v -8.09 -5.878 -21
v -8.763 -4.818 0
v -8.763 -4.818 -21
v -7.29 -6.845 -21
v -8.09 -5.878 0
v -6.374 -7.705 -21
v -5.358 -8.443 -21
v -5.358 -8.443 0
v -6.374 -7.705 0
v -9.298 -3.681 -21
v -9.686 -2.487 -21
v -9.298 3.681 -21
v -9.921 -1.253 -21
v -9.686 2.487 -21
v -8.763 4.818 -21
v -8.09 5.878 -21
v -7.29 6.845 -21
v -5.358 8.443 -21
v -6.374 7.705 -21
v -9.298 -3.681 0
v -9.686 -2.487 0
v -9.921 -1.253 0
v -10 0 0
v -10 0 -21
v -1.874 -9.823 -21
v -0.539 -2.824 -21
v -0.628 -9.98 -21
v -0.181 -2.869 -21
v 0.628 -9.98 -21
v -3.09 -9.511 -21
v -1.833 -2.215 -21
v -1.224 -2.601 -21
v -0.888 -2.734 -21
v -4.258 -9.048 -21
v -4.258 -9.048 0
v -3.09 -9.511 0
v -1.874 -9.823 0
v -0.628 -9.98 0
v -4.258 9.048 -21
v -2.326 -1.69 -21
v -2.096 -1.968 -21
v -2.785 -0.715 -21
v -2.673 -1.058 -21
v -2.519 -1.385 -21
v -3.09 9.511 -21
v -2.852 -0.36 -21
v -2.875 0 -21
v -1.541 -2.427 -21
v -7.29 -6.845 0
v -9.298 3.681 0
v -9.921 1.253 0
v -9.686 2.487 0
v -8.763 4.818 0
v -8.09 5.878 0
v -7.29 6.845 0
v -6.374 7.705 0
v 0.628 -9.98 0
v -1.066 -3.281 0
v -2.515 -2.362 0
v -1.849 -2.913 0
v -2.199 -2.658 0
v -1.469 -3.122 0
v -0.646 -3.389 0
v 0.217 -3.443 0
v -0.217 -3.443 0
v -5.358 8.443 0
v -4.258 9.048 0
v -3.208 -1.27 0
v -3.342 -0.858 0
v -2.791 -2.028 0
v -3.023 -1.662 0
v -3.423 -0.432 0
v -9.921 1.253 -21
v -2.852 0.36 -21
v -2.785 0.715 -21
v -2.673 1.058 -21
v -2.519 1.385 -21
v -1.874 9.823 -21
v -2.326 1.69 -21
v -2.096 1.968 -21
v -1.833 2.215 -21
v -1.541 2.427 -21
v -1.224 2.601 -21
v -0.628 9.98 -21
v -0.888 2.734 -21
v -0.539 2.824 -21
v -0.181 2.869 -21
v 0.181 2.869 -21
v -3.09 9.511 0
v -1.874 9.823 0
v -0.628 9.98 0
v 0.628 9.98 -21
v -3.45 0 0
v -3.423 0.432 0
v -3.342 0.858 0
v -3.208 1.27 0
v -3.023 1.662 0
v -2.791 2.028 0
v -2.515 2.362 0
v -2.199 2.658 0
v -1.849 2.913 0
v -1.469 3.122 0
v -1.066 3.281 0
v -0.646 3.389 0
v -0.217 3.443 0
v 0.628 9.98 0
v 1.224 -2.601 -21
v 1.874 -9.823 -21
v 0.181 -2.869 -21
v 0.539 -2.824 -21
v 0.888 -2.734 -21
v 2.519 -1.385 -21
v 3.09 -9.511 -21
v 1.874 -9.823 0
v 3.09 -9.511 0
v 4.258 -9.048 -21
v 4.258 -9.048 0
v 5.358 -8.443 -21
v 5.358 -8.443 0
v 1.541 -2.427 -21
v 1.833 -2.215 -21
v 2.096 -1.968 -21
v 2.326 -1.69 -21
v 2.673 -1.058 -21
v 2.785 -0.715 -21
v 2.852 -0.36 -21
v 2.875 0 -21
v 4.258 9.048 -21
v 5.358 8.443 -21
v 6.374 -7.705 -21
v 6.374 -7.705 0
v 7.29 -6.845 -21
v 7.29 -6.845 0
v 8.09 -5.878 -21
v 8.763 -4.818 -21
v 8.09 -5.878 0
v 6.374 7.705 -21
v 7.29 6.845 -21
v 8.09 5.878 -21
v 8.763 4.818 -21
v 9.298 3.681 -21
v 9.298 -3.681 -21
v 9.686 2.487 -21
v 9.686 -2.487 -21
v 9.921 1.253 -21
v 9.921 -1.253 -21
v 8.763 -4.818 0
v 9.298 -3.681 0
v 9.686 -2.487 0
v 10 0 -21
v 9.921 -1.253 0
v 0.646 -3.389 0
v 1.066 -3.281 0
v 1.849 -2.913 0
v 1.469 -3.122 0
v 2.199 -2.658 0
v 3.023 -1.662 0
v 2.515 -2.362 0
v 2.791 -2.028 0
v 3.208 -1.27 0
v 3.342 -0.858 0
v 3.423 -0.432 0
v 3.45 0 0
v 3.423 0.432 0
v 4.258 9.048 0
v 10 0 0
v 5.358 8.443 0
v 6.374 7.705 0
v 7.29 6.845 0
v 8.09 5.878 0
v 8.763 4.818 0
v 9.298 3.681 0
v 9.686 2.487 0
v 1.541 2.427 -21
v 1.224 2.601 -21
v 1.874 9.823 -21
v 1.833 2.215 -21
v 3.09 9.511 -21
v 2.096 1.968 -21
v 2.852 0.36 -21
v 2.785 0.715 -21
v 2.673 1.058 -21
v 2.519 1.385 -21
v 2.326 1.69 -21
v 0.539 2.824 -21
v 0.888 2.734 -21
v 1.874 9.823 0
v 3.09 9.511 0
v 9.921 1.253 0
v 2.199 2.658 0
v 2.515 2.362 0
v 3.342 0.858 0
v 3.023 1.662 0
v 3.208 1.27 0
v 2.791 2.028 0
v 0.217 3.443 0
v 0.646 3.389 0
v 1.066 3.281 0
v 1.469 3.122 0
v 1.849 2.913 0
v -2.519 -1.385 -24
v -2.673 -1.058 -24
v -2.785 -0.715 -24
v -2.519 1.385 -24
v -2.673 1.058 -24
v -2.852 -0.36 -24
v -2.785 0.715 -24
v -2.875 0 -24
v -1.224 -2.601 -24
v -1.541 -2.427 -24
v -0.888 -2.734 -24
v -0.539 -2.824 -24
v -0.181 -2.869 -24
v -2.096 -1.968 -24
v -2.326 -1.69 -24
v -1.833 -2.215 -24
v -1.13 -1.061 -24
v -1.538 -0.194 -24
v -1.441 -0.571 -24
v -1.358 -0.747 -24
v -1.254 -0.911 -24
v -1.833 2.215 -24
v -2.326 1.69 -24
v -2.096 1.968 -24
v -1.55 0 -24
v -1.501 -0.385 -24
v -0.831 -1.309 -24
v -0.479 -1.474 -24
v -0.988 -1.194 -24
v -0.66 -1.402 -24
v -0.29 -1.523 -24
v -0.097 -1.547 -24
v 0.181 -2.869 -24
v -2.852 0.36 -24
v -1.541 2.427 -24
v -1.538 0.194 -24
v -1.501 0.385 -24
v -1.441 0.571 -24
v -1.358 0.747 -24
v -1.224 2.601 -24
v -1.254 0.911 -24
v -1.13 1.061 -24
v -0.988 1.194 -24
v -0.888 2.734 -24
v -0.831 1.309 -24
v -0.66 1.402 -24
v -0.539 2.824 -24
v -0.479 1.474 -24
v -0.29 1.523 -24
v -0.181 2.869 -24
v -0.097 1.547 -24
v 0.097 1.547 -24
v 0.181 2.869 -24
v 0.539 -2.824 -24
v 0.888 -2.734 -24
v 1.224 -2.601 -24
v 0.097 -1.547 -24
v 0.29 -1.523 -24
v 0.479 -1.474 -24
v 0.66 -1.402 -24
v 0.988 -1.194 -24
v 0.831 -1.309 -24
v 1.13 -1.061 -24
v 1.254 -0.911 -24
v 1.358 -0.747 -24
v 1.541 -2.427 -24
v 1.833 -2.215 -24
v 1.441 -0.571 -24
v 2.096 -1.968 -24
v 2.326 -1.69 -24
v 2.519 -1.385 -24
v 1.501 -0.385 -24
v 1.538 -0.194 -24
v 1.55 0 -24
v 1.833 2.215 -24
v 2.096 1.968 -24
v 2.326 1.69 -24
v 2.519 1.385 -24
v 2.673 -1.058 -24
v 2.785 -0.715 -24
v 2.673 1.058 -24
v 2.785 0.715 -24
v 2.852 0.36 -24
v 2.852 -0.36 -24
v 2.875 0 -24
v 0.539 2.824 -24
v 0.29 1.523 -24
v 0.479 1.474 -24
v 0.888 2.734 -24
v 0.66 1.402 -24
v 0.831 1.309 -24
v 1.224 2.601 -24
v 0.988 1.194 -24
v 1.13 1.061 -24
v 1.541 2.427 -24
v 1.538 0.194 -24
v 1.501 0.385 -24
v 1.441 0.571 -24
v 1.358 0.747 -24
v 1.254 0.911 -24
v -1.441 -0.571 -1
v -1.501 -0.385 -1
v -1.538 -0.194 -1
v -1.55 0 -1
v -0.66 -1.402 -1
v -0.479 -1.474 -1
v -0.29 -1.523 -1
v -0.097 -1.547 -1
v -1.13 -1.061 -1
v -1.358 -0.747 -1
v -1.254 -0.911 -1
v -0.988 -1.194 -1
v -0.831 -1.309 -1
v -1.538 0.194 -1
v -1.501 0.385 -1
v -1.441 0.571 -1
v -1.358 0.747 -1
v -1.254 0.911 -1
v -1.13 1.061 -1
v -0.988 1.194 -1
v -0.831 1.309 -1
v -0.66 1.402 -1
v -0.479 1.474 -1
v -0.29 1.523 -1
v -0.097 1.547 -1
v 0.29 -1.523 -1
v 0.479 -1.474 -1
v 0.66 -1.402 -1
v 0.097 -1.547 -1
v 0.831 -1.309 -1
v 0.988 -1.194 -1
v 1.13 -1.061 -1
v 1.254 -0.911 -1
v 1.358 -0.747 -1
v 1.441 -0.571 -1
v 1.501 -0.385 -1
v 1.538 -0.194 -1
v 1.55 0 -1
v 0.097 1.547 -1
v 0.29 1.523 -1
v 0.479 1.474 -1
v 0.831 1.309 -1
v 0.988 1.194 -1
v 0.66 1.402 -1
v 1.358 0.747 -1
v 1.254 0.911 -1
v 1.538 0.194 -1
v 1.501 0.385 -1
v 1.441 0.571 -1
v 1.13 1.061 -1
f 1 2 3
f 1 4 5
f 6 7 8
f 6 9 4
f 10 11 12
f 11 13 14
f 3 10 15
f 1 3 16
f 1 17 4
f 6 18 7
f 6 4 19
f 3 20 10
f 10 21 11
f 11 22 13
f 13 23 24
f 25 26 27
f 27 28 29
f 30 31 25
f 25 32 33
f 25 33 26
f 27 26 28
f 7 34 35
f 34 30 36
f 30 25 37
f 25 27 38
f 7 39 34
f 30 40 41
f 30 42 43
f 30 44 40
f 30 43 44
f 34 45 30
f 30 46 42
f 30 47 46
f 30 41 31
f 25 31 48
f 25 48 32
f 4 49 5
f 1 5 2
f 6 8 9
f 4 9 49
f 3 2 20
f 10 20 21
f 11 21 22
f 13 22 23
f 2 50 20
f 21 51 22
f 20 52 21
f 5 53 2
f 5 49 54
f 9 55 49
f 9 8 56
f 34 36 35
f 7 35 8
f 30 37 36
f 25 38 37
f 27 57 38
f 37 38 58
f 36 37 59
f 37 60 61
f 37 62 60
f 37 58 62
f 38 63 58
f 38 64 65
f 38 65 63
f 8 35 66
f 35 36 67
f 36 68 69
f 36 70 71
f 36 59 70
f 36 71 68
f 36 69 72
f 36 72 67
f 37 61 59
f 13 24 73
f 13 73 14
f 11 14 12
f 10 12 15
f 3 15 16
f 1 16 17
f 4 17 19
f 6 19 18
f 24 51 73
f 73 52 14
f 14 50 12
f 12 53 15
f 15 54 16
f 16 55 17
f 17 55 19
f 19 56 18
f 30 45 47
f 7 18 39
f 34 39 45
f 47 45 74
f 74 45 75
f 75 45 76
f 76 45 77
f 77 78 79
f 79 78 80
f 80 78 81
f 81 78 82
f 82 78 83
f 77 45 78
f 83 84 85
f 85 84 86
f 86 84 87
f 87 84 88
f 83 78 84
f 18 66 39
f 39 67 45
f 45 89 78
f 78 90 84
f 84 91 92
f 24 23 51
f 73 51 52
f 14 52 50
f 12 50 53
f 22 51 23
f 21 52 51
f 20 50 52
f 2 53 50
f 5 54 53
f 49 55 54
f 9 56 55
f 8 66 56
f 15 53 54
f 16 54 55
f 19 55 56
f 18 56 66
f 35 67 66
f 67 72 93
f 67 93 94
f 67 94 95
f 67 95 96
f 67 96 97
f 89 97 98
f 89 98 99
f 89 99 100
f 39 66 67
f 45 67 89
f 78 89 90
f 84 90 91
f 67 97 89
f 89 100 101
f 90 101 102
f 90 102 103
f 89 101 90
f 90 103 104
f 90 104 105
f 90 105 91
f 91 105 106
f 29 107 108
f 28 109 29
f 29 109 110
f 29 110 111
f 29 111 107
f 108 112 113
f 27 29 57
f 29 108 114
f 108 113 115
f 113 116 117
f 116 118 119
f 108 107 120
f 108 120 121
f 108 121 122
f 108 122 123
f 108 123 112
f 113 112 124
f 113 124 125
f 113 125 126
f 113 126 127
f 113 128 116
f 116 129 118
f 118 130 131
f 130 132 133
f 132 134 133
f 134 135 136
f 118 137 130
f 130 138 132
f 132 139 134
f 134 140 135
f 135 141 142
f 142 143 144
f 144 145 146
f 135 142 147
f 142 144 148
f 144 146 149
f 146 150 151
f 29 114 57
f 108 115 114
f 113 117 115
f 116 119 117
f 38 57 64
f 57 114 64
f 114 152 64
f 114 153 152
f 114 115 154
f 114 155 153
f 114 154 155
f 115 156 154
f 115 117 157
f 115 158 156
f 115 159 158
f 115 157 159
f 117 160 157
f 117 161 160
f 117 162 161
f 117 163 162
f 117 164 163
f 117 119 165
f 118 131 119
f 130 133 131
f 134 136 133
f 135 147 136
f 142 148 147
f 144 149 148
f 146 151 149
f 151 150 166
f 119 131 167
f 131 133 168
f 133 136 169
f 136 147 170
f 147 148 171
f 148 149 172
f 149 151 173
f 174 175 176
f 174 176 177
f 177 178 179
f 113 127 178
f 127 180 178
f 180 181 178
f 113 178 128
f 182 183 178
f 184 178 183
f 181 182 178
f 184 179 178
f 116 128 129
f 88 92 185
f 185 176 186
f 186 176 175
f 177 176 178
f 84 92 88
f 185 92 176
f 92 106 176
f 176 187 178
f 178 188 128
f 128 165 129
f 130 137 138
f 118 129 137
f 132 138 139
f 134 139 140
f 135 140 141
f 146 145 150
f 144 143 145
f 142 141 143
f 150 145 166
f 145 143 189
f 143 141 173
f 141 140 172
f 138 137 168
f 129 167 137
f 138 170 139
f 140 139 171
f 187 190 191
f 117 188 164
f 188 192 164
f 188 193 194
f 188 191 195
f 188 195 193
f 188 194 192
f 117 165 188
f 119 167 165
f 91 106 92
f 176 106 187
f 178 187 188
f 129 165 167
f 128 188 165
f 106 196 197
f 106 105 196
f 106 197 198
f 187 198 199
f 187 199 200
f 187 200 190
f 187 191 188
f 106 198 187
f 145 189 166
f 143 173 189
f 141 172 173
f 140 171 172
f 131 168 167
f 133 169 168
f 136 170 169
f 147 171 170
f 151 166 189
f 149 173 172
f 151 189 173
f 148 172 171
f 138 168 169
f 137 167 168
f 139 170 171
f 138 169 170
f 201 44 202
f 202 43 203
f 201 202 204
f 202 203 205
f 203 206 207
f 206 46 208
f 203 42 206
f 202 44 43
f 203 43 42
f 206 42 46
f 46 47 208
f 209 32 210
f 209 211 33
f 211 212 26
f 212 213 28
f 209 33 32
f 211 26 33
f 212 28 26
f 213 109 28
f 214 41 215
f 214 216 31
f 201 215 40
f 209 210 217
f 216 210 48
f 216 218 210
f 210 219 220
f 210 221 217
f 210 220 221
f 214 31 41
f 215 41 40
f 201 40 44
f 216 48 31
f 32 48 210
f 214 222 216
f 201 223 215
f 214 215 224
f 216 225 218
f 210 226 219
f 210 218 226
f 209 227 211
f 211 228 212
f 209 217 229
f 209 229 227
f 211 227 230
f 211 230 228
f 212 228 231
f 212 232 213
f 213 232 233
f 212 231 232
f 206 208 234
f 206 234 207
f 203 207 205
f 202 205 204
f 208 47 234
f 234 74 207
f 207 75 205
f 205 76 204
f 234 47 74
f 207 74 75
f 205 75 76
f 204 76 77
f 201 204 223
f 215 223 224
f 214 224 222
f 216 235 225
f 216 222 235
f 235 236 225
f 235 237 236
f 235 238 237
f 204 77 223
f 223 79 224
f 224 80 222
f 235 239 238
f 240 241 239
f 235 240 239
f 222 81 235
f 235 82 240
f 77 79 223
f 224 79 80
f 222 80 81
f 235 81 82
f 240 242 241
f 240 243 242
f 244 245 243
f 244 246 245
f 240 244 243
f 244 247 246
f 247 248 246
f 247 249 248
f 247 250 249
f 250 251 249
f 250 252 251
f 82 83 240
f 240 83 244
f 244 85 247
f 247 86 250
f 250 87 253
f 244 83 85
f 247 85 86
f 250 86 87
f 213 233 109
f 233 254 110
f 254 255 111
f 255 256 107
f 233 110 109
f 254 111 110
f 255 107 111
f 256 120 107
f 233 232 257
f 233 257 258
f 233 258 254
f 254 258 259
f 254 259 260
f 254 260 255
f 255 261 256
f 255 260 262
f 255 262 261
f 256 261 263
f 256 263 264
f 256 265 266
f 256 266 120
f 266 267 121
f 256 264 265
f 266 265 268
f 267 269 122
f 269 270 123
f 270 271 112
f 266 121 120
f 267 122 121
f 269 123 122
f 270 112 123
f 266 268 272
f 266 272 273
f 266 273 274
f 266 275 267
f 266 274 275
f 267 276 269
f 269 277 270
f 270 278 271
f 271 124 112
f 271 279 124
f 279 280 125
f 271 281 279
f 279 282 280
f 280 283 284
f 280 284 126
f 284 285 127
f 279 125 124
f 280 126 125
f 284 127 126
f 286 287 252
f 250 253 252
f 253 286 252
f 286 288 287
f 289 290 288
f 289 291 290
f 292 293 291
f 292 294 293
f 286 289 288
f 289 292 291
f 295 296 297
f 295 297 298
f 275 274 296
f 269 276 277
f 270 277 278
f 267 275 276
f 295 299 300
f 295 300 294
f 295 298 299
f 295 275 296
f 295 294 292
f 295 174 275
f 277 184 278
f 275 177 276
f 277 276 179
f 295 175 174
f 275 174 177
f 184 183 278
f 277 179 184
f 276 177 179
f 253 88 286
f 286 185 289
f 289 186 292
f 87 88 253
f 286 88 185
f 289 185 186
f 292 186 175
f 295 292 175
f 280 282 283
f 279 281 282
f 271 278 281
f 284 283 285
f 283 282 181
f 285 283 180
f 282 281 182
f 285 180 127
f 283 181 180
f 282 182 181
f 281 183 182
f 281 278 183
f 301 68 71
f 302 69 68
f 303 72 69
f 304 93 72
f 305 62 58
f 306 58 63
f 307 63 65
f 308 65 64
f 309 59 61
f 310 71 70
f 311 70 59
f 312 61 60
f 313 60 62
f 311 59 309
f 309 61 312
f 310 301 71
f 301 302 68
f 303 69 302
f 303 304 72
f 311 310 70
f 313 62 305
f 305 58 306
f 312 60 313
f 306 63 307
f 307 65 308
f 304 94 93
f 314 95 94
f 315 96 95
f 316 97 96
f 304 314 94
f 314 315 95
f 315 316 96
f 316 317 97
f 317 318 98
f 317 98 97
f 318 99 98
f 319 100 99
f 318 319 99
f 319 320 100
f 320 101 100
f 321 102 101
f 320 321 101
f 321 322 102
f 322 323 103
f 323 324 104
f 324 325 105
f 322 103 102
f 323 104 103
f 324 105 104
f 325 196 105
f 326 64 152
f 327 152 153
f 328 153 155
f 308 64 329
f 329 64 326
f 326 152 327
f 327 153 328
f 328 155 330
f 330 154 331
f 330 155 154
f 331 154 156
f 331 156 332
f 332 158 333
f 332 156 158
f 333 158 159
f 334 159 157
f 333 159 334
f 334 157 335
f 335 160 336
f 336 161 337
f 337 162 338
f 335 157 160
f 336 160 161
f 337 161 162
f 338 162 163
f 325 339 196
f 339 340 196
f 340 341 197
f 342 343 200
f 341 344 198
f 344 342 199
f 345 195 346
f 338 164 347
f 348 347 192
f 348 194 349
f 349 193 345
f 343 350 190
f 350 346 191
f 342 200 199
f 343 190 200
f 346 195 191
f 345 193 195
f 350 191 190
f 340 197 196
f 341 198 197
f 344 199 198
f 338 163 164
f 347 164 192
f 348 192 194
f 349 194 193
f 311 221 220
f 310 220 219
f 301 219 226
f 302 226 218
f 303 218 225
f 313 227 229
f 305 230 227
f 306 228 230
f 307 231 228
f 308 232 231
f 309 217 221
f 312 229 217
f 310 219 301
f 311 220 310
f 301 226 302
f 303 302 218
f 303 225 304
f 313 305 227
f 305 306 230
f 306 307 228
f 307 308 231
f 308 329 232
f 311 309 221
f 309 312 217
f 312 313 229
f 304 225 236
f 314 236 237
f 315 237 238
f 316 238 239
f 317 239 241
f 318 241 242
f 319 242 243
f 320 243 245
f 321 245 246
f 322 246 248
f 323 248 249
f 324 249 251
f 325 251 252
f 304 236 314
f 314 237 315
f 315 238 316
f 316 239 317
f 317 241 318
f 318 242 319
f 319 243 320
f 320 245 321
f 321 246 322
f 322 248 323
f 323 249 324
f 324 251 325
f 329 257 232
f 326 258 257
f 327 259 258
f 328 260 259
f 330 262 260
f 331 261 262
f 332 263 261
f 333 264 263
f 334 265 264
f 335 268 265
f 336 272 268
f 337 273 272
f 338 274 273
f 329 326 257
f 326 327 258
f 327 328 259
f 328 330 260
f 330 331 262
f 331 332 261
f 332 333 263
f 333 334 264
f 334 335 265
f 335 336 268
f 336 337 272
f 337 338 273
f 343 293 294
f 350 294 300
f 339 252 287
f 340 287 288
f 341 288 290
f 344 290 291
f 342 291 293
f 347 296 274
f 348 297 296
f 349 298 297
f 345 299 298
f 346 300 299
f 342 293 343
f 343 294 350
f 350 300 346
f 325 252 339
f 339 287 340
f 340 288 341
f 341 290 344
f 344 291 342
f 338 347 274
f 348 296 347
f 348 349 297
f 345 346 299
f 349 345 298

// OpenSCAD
$fn = 50;

difference() {
	union() {
		translate(v = [0, 0, -21.0]) {
			cylinder(h = 21, r = 10.0);
		}
		#translate(v = [0, 0, -24.0]) {
			cylinder(h = 24, r = 2.875);
		}
	}
	union() {
		translate(v = [0, 0, 0]) {
			rotate(a = [0, 0, 0]) {
				difference() {
					union() {
						translate(v = [0, 0, -24.0]) {
							cylinder(h = 24, r = 1.25);
						}
						translate(v = [0, 0, -1.0]) {
							cylinder(h = 1.0, r1 = 1.55, r2 = 3.45);
						}
						translate(v = [0, 0, -24.0]) {
							cylinder(h = 24, r = 1.55);
						}
						translate(v = [0, 0, -24.0]) {
							cylinder(h = 24, r = 1.25);
						}
					}
					union();
				}
			}
		}
	}
}
